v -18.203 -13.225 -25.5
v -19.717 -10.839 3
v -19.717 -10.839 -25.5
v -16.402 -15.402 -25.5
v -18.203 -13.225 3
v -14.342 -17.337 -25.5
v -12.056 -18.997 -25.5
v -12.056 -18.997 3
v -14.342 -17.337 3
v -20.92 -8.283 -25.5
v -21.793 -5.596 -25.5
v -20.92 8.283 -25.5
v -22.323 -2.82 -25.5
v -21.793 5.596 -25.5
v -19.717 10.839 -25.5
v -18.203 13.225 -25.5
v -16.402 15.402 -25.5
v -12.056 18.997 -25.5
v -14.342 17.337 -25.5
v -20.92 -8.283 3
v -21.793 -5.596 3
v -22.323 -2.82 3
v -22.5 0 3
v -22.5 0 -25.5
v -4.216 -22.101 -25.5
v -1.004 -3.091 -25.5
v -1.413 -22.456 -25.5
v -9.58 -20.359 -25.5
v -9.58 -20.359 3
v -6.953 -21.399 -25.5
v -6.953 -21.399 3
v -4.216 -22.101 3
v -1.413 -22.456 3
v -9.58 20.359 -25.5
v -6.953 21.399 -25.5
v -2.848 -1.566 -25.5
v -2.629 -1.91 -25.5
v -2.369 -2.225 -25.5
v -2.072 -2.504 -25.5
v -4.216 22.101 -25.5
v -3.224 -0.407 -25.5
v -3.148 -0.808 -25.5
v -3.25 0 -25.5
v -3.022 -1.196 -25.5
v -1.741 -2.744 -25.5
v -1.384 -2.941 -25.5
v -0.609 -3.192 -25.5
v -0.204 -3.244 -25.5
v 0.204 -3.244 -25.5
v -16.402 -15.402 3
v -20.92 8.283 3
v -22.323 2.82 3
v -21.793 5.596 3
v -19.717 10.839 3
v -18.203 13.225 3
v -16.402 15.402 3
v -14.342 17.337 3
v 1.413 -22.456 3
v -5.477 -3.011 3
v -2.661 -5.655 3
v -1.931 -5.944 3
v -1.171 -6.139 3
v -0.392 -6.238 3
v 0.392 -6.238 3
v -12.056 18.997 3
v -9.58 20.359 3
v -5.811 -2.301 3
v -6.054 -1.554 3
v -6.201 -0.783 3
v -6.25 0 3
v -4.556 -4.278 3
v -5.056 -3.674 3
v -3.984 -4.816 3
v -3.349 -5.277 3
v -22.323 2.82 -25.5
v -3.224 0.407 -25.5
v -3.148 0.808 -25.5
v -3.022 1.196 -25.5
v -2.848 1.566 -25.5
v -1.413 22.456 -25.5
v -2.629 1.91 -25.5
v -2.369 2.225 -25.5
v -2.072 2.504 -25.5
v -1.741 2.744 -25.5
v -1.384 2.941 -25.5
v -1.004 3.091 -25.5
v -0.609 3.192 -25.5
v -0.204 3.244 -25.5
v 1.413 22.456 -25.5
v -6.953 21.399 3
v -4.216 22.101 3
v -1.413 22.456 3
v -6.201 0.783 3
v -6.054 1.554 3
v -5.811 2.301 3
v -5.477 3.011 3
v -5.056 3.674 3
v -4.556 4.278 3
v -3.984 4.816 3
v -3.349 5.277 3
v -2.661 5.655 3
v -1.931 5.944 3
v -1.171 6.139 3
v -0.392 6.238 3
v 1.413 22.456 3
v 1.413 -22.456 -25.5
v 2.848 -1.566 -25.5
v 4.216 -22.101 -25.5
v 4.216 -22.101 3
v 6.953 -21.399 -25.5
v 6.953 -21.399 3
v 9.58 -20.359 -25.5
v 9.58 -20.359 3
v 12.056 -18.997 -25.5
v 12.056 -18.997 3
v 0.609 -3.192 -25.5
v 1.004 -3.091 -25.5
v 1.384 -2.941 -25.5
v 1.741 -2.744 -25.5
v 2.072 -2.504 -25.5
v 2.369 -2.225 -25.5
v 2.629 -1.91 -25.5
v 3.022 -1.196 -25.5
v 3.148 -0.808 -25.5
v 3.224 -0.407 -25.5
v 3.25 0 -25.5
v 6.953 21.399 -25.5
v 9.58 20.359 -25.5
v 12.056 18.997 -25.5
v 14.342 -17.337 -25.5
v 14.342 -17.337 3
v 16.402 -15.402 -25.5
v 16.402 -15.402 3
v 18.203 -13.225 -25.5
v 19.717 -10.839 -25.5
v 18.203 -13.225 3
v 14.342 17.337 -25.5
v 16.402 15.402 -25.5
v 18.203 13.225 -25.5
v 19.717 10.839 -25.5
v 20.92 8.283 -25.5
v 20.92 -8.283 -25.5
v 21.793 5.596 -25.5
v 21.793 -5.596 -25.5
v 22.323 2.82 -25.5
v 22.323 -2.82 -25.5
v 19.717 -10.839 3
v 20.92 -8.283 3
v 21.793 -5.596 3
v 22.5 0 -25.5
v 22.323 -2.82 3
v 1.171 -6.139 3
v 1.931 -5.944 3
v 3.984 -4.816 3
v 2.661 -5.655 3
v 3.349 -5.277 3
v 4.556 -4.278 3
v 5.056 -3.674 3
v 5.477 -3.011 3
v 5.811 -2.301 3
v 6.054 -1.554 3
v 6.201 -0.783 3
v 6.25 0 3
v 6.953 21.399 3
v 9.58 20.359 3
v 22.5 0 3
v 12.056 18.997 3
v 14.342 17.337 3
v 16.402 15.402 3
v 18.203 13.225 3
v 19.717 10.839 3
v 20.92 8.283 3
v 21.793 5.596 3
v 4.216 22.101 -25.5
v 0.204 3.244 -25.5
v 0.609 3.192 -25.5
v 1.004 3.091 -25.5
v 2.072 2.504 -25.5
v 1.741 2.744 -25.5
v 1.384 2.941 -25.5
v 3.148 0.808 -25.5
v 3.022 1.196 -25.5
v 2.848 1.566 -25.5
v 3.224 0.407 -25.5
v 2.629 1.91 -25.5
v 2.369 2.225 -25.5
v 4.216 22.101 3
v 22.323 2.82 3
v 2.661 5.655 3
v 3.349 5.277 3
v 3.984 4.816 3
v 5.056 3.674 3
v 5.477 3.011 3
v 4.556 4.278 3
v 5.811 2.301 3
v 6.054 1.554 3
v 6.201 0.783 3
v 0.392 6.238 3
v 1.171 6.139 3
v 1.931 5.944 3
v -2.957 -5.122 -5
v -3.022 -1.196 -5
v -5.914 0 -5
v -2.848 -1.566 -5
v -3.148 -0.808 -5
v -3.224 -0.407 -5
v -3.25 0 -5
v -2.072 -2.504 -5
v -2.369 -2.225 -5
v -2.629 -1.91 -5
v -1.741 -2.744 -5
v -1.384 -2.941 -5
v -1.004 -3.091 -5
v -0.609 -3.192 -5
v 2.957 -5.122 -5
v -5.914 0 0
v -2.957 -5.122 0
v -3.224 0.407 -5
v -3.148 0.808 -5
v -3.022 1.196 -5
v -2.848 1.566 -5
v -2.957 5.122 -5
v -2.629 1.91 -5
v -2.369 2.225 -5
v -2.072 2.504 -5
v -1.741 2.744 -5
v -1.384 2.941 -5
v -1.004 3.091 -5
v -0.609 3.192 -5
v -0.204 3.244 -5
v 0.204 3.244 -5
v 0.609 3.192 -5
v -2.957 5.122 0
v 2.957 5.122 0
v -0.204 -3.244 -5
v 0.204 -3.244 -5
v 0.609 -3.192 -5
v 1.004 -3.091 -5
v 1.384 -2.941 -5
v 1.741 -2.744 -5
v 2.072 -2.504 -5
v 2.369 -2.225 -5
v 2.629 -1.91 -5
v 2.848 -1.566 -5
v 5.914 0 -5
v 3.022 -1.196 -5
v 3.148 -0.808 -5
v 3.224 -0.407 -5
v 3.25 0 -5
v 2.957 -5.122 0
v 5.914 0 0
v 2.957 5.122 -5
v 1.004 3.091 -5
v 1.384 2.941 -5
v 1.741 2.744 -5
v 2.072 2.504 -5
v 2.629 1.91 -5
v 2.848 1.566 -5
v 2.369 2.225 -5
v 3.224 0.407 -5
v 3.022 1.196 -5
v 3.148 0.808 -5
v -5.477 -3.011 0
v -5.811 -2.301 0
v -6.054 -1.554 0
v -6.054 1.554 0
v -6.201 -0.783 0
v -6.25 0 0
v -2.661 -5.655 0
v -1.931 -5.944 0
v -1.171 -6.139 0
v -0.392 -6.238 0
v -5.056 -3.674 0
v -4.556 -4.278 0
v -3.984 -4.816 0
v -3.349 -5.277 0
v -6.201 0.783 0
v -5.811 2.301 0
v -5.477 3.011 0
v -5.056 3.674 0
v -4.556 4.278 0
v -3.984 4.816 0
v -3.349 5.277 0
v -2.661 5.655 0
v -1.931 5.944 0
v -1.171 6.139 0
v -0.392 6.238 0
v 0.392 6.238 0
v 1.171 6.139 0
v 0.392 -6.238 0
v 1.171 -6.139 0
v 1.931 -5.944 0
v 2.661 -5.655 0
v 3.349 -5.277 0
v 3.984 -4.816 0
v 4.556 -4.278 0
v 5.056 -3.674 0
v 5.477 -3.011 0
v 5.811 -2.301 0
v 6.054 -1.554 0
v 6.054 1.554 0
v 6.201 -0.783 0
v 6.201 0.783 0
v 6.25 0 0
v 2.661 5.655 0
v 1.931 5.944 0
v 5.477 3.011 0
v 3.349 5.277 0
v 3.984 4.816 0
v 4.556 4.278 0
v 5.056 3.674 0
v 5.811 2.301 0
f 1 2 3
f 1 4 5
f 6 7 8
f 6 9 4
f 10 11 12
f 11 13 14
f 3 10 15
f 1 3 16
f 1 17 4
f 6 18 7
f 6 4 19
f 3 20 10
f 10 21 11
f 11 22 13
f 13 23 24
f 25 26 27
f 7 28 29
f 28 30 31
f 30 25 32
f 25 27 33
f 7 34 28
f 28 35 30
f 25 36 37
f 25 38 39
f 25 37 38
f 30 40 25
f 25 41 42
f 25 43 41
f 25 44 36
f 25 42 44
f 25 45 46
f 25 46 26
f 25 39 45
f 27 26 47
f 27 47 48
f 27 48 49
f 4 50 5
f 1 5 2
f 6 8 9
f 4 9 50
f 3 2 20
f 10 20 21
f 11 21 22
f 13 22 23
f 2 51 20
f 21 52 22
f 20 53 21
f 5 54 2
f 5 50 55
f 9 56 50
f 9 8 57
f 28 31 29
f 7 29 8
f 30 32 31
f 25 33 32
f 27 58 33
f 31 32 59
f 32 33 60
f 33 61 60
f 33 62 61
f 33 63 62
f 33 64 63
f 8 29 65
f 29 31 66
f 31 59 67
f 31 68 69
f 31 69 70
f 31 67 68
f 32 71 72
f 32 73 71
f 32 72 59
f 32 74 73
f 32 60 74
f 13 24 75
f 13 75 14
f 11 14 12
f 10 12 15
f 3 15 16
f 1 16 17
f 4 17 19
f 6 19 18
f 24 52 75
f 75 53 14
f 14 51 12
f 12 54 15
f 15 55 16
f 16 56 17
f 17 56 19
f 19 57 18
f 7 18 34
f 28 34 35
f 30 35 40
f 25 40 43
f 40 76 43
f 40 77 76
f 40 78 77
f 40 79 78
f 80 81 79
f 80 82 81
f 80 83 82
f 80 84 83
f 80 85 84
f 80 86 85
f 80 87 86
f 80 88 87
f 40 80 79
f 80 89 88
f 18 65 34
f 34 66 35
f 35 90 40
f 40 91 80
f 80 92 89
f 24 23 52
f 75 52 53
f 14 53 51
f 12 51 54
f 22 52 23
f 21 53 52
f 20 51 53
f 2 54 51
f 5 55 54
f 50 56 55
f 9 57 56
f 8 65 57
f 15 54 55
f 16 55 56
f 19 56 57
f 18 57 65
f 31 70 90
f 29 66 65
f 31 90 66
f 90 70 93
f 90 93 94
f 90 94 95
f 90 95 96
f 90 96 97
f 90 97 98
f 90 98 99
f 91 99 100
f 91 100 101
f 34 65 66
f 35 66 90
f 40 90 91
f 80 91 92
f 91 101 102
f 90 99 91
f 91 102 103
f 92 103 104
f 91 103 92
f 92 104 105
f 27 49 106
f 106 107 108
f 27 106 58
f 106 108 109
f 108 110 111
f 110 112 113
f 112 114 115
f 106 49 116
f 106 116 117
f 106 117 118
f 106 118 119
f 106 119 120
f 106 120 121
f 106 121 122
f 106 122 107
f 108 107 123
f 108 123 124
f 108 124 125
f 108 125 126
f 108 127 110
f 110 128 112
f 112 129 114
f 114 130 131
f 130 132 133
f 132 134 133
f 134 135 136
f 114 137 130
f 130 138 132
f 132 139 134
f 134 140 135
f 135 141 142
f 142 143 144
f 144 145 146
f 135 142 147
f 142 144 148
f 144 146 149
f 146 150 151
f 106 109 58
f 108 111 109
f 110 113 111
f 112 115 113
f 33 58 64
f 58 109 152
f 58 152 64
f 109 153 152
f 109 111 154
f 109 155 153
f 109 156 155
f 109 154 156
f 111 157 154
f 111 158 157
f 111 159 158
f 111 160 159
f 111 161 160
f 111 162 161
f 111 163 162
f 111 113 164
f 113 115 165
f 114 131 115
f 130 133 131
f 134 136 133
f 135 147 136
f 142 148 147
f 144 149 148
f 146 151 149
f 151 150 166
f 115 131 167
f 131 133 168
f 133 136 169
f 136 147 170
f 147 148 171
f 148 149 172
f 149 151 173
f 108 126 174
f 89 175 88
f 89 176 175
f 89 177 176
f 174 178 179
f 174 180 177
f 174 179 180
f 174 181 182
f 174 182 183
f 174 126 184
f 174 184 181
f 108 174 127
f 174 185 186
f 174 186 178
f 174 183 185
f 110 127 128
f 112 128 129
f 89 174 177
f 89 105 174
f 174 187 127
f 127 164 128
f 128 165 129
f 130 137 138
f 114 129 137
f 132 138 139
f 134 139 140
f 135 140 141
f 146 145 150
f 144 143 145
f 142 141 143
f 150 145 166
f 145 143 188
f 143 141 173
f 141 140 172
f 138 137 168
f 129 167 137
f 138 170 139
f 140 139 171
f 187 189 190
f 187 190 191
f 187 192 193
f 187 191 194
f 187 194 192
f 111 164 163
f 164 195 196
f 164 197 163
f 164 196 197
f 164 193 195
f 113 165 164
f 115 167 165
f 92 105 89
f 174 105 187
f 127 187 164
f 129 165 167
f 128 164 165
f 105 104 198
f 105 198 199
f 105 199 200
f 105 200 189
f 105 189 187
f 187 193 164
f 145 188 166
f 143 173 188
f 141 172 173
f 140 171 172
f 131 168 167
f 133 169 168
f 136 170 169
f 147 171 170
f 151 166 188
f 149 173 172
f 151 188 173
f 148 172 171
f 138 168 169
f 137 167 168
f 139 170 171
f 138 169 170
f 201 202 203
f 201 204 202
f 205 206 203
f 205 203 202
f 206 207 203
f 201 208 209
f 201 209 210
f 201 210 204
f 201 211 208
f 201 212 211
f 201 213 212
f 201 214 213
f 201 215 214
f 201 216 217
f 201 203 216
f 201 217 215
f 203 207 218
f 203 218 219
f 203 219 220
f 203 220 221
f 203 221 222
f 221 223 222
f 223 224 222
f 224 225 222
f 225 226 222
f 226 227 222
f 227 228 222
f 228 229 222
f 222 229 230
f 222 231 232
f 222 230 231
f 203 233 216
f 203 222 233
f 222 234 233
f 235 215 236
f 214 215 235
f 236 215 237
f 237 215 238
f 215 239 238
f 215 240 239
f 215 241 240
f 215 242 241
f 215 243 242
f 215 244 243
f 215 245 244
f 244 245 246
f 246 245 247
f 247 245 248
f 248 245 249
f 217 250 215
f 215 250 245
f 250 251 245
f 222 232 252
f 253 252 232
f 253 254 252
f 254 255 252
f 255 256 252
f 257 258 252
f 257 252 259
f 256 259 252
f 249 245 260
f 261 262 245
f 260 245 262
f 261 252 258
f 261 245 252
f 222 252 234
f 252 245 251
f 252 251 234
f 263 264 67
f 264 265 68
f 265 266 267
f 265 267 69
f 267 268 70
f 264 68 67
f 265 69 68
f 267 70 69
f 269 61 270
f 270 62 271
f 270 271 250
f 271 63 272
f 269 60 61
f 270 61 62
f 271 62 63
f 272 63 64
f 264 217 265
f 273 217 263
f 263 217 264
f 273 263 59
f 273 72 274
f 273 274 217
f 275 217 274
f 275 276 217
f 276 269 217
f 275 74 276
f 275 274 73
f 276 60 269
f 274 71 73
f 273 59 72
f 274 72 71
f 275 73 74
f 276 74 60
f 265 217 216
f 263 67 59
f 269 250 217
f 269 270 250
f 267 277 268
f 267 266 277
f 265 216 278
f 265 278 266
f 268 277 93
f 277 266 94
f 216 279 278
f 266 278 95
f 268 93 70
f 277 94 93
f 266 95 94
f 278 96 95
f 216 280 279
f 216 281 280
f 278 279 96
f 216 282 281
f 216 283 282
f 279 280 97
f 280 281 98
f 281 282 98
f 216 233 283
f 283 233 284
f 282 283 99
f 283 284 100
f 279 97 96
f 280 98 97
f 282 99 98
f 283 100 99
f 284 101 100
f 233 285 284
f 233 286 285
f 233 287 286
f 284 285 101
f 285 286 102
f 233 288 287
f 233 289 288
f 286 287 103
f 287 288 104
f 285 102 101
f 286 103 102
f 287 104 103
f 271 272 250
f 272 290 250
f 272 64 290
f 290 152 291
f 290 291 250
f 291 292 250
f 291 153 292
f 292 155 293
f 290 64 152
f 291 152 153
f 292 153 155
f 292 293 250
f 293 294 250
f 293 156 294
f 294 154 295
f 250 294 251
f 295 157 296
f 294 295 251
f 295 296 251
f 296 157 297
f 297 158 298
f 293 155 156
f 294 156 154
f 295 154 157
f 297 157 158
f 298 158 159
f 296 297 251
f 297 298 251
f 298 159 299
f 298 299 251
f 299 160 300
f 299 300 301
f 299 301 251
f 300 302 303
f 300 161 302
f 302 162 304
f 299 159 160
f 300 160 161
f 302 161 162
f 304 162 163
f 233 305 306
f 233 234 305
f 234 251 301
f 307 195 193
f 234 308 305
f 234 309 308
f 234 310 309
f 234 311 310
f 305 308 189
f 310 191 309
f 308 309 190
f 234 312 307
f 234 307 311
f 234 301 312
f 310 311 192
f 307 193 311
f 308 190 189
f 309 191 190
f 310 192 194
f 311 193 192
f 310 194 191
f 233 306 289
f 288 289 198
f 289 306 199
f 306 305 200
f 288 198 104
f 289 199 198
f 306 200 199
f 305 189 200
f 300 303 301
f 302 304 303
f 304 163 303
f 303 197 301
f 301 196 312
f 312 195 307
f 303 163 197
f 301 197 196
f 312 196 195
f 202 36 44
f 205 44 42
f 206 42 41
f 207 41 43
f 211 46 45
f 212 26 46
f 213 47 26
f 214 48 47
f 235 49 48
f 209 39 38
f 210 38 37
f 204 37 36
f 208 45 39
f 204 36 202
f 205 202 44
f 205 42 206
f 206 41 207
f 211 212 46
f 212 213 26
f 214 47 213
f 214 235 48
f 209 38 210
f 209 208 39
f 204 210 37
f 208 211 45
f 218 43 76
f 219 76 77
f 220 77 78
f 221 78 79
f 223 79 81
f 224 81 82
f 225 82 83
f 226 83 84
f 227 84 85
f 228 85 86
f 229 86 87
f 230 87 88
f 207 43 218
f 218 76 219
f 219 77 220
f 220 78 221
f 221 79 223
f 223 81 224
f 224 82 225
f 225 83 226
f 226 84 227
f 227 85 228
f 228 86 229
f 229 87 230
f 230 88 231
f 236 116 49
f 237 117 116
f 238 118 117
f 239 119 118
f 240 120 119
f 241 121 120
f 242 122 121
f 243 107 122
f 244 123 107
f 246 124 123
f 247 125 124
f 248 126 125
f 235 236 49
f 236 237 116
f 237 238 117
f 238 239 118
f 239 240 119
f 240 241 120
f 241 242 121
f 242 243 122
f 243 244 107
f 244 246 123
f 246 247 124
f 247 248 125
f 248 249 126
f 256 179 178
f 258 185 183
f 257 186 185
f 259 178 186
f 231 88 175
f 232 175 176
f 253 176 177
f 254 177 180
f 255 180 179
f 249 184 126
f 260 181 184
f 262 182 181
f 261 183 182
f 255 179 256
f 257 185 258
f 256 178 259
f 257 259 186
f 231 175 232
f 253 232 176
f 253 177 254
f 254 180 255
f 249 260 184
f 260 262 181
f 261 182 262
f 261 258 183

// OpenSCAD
$fn = 50;


difference() {
	union() {
		translate(v = [0, 0, -25.5000000000]) {
			cylinder(h = 28.5000000000, r = 22.5000000000);
		}
		#translate(v = [0, 0, -27.0000000000]) {
			cylinder(h = 27, r = 2.8750000000);
		}
	}
	union() {
		translate(v = [0, 0, 0]) {
			rotate(a = [0, 0, 0]) {
				difference() {
					union() {
						translate(v = [0, 0, -5]) {
							linear_extrude(height = 5) {
								polygon(points = [[5.9142500000, 0.0000000000], [2.9571250000, 5.1218907443], [-2.9571250000, 5.1218907443], [-5.9142500000, 0.0000000000], [-2.9571250000, -5.1218907443], [2.9571250000, -5.1218907443]]);
							}
						}
					}
					union();
				}
			}
		}
		#cylinder(h = 3, r = 6.2500000000);
		#translate(v = [0, 0, -100.0000000000]) {
			cylinder(h = 200, r = 3.2500000000);
		}
	}
}
